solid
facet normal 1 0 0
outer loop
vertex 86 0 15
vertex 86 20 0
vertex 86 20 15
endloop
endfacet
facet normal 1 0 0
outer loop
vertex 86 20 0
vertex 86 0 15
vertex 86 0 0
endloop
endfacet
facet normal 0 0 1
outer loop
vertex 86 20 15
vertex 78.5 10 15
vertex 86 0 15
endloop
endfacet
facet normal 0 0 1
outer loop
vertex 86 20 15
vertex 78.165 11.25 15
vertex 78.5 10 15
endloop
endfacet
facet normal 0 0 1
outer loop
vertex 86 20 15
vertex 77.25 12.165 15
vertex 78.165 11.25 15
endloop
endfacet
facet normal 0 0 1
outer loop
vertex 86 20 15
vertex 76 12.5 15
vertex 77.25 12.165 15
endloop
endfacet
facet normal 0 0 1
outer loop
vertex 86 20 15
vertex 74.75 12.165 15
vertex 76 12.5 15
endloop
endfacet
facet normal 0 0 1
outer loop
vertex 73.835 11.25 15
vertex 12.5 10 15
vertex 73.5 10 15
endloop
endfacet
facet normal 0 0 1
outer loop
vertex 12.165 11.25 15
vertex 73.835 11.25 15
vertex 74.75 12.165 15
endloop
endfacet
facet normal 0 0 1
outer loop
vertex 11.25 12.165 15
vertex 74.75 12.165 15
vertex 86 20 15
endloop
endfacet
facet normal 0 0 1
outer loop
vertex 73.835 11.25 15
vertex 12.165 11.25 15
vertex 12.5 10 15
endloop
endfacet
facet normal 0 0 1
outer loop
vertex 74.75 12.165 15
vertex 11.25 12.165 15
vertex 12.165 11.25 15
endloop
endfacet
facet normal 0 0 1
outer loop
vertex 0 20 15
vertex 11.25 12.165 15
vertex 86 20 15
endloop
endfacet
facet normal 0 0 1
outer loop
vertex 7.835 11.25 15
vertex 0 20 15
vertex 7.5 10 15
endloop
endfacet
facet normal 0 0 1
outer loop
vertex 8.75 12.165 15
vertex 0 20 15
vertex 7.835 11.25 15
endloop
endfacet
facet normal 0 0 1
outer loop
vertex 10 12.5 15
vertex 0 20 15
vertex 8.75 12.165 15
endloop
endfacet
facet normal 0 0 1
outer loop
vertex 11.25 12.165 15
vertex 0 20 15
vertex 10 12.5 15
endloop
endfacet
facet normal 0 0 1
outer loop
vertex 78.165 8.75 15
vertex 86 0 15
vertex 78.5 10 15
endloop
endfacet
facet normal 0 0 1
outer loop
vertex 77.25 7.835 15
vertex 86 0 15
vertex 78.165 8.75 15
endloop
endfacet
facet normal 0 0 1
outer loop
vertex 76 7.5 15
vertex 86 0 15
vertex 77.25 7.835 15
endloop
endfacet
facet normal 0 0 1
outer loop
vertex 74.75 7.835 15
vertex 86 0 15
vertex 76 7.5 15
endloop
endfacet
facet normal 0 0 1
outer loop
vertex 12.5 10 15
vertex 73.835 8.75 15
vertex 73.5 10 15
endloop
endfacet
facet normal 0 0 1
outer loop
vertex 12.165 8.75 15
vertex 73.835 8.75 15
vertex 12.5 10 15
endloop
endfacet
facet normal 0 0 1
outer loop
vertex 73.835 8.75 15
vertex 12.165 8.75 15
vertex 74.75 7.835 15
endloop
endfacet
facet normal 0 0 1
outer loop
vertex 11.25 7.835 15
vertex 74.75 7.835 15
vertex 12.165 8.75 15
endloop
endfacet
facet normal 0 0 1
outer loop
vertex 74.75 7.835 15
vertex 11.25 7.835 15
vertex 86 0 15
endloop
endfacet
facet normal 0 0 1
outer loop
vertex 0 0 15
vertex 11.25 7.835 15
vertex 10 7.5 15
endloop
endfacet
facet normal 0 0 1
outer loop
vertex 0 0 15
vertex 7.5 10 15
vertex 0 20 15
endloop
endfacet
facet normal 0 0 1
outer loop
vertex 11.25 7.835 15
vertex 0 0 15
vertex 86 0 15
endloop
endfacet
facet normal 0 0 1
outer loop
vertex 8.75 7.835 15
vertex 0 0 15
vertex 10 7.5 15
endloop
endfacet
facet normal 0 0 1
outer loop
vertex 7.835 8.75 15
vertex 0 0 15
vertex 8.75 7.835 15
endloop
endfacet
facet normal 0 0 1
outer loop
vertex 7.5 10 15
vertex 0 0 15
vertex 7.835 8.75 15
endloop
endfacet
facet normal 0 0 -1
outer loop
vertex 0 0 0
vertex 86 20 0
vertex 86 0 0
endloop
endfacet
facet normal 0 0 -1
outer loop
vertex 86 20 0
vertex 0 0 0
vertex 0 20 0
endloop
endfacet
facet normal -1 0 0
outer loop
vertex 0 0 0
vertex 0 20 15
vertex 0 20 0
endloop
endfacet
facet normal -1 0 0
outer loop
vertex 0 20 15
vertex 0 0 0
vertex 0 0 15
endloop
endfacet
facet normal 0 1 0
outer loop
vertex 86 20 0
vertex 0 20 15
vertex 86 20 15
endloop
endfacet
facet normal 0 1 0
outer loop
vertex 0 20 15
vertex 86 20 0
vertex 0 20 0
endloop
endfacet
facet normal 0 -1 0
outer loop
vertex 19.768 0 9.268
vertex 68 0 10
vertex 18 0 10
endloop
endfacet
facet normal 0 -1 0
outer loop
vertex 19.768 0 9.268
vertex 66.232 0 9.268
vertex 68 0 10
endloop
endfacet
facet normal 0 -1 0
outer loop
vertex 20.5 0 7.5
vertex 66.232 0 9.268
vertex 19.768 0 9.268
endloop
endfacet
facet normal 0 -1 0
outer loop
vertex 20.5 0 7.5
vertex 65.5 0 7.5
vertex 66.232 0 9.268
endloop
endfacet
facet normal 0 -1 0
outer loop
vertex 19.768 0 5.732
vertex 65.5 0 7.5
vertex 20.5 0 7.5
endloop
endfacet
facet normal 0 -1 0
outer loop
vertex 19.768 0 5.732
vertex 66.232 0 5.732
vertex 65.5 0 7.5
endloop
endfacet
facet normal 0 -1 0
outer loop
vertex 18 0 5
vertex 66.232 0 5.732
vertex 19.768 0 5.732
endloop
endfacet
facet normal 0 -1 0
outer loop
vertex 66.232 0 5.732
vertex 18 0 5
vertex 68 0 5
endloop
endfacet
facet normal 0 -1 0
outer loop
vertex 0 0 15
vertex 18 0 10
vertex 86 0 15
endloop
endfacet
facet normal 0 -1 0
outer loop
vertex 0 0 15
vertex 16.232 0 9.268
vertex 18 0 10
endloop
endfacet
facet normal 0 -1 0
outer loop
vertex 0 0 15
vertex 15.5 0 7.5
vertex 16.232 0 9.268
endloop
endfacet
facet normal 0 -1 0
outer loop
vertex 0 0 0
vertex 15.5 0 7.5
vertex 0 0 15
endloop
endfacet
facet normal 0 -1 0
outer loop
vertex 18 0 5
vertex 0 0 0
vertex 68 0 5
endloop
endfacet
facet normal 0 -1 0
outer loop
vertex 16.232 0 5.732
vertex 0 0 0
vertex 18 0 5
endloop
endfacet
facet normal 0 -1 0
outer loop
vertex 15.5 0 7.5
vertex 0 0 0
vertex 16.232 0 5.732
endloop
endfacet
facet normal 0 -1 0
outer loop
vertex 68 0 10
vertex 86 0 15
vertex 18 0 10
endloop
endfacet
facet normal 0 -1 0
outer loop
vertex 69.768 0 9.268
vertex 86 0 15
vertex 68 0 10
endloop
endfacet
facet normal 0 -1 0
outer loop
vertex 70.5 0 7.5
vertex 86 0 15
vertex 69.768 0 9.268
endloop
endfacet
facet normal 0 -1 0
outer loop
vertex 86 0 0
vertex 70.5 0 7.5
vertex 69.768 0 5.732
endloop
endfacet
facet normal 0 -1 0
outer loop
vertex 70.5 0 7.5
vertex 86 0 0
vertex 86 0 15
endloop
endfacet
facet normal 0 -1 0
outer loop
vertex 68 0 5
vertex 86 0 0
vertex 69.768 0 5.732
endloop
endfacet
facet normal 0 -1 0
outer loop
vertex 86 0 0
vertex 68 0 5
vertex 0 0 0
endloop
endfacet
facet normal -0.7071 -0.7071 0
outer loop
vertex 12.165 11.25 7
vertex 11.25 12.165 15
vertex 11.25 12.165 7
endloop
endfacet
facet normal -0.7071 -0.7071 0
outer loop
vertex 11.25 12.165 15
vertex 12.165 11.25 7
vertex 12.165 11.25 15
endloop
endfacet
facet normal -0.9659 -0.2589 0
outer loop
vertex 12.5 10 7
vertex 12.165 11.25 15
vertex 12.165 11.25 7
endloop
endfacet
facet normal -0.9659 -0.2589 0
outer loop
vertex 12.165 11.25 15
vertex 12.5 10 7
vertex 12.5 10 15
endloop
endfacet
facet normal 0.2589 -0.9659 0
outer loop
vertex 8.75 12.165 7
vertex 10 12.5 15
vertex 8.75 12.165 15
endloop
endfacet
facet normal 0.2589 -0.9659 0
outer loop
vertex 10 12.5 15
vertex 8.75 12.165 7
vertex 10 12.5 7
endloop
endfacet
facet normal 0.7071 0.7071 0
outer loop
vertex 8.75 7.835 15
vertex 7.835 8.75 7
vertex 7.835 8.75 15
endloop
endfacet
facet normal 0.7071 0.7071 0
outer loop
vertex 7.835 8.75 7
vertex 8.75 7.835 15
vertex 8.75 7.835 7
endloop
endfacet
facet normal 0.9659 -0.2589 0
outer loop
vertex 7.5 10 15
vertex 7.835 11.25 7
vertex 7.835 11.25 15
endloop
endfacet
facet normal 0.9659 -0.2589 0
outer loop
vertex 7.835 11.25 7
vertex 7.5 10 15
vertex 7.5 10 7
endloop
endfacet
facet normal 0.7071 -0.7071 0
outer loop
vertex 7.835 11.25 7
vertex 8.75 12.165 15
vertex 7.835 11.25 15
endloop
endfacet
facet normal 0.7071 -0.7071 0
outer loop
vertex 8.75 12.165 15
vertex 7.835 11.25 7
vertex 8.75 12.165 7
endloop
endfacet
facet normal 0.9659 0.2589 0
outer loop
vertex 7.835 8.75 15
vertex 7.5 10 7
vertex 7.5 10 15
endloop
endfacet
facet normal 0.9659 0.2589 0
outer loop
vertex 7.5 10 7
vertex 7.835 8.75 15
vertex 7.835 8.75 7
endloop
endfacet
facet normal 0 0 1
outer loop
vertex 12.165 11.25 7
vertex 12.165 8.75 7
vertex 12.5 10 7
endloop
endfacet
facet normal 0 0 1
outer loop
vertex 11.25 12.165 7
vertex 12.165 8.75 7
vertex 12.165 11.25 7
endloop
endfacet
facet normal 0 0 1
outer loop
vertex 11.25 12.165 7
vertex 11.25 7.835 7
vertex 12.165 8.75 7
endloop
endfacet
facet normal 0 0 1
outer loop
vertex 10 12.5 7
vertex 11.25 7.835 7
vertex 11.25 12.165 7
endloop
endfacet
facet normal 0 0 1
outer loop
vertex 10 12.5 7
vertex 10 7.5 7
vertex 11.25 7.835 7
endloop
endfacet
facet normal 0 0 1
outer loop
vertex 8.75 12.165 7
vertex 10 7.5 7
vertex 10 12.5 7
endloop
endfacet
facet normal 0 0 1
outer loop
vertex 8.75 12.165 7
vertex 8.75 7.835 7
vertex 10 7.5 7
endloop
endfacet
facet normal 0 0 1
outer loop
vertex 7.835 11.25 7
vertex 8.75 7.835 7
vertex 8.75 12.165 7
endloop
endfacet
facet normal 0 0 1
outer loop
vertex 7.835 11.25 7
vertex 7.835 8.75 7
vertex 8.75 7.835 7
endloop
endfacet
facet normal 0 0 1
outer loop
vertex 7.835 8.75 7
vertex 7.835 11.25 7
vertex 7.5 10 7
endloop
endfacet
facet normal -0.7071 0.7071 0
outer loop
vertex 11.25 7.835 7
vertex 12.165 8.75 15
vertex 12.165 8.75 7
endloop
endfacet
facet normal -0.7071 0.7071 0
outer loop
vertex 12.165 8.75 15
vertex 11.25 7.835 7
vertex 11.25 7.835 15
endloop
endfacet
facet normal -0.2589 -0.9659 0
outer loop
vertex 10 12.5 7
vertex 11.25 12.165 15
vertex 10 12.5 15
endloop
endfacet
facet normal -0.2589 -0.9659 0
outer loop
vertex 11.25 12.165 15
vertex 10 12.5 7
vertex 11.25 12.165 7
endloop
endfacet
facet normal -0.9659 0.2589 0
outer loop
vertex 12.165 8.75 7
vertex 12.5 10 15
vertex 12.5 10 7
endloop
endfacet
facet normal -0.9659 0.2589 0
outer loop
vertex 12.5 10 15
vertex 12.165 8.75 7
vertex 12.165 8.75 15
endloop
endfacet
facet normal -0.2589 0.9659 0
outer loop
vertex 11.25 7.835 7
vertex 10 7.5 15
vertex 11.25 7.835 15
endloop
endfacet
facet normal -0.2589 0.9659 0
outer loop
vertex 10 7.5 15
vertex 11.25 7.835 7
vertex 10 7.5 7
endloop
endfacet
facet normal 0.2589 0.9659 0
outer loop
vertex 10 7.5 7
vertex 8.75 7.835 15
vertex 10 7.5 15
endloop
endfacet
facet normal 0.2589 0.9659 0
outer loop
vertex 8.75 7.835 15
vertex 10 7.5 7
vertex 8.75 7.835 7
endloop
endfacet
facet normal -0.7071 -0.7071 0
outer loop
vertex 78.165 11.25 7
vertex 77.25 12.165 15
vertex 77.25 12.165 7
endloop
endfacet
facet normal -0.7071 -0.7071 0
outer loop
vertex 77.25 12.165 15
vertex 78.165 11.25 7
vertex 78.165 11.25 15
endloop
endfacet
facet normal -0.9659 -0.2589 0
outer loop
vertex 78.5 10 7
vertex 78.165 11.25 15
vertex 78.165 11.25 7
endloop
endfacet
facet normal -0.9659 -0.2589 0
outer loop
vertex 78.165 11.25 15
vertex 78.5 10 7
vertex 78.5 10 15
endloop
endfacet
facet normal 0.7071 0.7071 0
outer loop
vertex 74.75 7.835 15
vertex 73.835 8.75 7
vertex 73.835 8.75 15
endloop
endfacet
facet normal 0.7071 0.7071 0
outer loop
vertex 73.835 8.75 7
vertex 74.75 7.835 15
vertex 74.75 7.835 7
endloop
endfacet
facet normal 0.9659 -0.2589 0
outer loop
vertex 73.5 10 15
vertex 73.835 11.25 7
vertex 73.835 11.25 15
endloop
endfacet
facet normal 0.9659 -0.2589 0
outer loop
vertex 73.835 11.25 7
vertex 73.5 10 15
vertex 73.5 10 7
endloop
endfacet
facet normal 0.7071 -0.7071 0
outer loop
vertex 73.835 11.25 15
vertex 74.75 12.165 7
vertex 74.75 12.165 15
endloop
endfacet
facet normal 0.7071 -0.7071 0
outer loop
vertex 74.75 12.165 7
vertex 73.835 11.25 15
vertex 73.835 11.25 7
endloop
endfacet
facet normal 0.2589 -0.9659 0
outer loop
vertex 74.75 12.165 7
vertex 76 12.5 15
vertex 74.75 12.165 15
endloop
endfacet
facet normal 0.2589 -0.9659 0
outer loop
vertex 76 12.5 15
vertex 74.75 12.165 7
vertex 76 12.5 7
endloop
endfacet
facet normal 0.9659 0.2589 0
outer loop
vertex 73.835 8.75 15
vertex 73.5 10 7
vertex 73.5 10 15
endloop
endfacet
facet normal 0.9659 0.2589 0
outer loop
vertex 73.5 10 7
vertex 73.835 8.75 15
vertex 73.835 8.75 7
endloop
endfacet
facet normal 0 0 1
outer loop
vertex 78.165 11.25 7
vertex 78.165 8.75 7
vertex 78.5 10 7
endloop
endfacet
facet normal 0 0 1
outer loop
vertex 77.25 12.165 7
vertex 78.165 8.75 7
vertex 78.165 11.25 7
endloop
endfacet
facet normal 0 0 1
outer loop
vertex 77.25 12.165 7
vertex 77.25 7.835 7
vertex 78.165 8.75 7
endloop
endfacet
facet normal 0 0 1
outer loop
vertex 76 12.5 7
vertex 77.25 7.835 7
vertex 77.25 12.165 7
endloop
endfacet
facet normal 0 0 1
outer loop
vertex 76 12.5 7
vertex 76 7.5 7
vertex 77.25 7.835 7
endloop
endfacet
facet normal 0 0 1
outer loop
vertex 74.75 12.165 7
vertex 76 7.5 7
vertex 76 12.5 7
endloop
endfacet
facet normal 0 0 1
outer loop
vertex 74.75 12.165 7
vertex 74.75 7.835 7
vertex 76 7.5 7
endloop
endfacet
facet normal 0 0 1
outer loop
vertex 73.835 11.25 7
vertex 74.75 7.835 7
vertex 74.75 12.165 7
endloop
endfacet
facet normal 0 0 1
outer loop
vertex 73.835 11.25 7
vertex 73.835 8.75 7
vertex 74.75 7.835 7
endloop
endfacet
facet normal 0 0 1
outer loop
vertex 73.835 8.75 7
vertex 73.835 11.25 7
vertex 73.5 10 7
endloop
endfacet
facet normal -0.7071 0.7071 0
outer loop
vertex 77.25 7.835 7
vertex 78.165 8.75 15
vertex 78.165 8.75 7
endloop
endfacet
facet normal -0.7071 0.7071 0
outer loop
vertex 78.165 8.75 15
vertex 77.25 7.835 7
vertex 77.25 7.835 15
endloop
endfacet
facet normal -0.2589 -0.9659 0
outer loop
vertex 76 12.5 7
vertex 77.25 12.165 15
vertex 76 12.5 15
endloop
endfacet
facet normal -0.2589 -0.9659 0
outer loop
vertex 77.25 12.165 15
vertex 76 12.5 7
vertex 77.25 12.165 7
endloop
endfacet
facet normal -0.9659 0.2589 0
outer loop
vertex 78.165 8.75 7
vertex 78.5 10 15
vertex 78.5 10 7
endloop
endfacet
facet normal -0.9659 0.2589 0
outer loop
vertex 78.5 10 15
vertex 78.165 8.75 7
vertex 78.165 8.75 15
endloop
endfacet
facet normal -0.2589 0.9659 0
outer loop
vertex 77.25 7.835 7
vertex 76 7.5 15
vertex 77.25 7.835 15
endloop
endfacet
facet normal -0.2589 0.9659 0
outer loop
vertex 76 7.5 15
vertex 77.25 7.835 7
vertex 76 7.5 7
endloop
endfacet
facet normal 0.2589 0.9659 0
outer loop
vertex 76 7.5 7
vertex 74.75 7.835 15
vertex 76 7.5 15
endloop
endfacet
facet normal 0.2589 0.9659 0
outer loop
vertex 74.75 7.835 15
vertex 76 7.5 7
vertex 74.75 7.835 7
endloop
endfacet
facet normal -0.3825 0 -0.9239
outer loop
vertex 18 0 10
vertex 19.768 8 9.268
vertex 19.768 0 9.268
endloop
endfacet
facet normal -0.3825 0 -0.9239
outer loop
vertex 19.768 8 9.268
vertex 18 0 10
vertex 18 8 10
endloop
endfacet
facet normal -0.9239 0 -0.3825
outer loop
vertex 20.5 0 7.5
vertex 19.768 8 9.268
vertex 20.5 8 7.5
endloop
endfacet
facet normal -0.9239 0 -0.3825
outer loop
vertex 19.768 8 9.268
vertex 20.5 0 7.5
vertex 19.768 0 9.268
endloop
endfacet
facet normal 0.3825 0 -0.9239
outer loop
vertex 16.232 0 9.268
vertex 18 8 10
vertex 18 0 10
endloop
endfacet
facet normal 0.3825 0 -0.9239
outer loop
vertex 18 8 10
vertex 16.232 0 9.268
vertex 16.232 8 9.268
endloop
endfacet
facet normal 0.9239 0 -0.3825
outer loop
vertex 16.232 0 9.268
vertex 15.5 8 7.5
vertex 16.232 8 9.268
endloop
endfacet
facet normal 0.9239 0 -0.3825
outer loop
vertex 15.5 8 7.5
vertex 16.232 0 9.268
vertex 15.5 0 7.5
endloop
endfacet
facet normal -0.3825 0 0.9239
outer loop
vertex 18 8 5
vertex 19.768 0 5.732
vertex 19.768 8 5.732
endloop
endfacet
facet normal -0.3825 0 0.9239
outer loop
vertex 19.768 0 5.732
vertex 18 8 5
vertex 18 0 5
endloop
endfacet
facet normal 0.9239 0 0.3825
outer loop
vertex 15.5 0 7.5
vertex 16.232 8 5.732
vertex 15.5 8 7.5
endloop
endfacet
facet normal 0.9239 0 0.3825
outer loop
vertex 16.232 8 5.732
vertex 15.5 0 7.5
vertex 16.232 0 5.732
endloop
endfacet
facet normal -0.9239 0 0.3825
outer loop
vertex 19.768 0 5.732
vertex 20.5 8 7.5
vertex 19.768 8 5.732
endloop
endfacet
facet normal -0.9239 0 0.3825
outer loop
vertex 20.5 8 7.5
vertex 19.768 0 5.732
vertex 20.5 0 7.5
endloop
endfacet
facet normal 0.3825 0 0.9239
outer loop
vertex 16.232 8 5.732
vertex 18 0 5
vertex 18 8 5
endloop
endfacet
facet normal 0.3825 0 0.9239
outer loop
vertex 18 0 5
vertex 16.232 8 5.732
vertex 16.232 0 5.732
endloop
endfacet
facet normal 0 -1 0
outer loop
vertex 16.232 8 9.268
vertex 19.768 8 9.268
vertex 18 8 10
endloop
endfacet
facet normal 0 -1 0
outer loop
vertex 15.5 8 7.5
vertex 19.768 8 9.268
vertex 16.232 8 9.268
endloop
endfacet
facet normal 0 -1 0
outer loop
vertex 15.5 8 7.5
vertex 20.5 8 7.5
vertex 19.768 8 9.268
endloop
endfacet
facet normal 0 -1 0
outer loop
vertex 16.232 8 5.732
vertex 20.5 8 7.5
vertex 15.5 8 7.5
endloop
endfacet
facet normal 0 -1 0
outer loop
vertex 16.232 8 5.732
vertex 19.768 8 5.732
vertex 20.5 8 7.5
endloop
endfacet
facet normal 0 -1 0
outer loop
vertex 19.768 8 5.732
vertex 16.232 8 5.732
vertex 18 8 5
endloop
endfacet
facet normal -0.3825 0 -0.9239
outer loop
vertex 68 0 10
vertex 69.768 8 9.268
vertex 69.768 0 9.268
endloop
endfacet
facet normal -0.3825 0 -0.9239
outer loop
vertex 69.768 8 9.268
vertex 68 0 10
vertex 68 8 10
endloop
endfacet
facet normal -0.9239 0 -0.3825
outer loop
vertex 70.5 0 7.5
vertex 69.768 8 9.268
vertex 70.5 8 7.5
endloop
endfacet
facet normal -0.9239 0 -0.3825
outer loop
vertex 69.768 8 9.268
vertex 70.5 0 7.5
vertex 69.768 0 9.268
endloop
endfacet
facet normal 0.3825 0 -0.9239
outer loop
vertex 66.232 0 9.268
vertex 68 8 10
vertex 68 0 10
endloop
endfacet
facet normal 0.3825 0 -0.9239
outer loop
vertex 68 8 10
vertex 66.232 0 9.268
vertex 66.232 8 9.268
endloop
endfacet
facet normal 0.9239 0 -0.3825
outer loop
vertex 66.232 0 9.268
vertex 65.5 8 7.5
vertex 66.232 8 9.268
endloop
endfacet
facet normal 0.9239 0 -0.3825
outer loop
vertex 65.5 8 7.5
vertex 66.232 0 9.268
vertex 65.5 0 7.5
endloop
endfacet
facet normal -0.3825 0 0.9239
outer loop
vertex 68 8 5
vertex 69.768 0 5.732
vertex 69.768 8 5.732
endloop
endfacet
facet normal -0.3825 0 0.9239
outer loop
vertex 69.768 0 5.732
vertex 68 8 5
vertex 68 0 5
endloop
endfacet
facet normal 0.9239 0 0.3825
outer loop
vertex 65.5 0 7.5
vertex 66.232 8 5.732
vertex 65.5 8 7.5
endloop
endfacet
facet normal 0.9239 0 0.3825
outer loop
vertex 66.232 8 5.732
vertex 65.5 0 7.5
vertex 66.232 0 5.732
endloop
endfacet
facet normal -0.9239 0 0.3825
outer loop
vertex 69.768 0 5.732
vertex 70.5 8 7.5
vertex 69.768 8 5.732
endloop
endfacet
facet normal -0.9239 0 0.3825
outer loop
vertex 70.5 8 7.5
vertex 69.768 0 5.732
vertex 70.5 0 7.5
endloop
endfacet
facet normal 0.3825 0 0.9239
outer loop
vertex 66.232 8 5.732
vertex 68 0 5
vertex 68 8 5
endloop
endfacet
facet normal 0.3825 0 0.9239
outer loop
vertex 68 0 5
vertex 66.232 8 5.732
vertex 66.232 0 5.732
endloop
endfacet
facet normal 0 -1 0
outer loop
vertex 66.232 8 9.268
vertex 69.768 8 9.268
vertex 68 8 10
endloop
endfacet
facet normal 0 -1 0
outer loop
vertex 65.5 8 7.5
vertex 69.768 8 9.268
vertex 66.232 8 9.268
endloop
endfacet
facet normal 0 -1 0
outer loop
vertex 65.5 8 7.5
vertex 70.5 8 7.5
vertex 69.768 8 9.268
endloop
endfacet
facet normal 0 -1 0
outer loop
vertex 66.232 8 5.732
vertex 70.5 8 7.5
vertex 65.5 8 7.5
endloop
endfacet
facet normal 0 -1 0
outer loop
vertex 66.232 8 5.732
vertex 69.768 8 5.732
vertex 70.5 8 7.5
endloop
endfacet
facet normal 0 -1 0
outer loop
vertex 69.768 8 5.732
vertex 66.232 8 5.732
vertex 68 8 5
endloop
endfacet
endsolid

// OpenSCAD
//16mm on center
//250mm/digit inner
//140 max/digit. ~120mm /
u=12;
margin=5;
border=2;

difference() {
    cube([u*6+margin*2+border*2,20,15]);


    // mounting holes
    translate([10,10,7]) {
        cylinder(h=8, d=5, $fn=12);        
    }
    translate([u*6+margin*2+border*2-10,10,7]) {
        cylinder(h=8, d=5, $fn=12);
    }


    // vertical mounts
    translate([18,8,15/2]) {
        rotate(90,[1,0,0]) {
            cylinder(h=8, d=5);
        };
    };
    translate([86-18,8,15/2]) {
        rotate(90,[1,0,0]) {
            cylinder(h=8, d=5);
        };
    };


}

    
